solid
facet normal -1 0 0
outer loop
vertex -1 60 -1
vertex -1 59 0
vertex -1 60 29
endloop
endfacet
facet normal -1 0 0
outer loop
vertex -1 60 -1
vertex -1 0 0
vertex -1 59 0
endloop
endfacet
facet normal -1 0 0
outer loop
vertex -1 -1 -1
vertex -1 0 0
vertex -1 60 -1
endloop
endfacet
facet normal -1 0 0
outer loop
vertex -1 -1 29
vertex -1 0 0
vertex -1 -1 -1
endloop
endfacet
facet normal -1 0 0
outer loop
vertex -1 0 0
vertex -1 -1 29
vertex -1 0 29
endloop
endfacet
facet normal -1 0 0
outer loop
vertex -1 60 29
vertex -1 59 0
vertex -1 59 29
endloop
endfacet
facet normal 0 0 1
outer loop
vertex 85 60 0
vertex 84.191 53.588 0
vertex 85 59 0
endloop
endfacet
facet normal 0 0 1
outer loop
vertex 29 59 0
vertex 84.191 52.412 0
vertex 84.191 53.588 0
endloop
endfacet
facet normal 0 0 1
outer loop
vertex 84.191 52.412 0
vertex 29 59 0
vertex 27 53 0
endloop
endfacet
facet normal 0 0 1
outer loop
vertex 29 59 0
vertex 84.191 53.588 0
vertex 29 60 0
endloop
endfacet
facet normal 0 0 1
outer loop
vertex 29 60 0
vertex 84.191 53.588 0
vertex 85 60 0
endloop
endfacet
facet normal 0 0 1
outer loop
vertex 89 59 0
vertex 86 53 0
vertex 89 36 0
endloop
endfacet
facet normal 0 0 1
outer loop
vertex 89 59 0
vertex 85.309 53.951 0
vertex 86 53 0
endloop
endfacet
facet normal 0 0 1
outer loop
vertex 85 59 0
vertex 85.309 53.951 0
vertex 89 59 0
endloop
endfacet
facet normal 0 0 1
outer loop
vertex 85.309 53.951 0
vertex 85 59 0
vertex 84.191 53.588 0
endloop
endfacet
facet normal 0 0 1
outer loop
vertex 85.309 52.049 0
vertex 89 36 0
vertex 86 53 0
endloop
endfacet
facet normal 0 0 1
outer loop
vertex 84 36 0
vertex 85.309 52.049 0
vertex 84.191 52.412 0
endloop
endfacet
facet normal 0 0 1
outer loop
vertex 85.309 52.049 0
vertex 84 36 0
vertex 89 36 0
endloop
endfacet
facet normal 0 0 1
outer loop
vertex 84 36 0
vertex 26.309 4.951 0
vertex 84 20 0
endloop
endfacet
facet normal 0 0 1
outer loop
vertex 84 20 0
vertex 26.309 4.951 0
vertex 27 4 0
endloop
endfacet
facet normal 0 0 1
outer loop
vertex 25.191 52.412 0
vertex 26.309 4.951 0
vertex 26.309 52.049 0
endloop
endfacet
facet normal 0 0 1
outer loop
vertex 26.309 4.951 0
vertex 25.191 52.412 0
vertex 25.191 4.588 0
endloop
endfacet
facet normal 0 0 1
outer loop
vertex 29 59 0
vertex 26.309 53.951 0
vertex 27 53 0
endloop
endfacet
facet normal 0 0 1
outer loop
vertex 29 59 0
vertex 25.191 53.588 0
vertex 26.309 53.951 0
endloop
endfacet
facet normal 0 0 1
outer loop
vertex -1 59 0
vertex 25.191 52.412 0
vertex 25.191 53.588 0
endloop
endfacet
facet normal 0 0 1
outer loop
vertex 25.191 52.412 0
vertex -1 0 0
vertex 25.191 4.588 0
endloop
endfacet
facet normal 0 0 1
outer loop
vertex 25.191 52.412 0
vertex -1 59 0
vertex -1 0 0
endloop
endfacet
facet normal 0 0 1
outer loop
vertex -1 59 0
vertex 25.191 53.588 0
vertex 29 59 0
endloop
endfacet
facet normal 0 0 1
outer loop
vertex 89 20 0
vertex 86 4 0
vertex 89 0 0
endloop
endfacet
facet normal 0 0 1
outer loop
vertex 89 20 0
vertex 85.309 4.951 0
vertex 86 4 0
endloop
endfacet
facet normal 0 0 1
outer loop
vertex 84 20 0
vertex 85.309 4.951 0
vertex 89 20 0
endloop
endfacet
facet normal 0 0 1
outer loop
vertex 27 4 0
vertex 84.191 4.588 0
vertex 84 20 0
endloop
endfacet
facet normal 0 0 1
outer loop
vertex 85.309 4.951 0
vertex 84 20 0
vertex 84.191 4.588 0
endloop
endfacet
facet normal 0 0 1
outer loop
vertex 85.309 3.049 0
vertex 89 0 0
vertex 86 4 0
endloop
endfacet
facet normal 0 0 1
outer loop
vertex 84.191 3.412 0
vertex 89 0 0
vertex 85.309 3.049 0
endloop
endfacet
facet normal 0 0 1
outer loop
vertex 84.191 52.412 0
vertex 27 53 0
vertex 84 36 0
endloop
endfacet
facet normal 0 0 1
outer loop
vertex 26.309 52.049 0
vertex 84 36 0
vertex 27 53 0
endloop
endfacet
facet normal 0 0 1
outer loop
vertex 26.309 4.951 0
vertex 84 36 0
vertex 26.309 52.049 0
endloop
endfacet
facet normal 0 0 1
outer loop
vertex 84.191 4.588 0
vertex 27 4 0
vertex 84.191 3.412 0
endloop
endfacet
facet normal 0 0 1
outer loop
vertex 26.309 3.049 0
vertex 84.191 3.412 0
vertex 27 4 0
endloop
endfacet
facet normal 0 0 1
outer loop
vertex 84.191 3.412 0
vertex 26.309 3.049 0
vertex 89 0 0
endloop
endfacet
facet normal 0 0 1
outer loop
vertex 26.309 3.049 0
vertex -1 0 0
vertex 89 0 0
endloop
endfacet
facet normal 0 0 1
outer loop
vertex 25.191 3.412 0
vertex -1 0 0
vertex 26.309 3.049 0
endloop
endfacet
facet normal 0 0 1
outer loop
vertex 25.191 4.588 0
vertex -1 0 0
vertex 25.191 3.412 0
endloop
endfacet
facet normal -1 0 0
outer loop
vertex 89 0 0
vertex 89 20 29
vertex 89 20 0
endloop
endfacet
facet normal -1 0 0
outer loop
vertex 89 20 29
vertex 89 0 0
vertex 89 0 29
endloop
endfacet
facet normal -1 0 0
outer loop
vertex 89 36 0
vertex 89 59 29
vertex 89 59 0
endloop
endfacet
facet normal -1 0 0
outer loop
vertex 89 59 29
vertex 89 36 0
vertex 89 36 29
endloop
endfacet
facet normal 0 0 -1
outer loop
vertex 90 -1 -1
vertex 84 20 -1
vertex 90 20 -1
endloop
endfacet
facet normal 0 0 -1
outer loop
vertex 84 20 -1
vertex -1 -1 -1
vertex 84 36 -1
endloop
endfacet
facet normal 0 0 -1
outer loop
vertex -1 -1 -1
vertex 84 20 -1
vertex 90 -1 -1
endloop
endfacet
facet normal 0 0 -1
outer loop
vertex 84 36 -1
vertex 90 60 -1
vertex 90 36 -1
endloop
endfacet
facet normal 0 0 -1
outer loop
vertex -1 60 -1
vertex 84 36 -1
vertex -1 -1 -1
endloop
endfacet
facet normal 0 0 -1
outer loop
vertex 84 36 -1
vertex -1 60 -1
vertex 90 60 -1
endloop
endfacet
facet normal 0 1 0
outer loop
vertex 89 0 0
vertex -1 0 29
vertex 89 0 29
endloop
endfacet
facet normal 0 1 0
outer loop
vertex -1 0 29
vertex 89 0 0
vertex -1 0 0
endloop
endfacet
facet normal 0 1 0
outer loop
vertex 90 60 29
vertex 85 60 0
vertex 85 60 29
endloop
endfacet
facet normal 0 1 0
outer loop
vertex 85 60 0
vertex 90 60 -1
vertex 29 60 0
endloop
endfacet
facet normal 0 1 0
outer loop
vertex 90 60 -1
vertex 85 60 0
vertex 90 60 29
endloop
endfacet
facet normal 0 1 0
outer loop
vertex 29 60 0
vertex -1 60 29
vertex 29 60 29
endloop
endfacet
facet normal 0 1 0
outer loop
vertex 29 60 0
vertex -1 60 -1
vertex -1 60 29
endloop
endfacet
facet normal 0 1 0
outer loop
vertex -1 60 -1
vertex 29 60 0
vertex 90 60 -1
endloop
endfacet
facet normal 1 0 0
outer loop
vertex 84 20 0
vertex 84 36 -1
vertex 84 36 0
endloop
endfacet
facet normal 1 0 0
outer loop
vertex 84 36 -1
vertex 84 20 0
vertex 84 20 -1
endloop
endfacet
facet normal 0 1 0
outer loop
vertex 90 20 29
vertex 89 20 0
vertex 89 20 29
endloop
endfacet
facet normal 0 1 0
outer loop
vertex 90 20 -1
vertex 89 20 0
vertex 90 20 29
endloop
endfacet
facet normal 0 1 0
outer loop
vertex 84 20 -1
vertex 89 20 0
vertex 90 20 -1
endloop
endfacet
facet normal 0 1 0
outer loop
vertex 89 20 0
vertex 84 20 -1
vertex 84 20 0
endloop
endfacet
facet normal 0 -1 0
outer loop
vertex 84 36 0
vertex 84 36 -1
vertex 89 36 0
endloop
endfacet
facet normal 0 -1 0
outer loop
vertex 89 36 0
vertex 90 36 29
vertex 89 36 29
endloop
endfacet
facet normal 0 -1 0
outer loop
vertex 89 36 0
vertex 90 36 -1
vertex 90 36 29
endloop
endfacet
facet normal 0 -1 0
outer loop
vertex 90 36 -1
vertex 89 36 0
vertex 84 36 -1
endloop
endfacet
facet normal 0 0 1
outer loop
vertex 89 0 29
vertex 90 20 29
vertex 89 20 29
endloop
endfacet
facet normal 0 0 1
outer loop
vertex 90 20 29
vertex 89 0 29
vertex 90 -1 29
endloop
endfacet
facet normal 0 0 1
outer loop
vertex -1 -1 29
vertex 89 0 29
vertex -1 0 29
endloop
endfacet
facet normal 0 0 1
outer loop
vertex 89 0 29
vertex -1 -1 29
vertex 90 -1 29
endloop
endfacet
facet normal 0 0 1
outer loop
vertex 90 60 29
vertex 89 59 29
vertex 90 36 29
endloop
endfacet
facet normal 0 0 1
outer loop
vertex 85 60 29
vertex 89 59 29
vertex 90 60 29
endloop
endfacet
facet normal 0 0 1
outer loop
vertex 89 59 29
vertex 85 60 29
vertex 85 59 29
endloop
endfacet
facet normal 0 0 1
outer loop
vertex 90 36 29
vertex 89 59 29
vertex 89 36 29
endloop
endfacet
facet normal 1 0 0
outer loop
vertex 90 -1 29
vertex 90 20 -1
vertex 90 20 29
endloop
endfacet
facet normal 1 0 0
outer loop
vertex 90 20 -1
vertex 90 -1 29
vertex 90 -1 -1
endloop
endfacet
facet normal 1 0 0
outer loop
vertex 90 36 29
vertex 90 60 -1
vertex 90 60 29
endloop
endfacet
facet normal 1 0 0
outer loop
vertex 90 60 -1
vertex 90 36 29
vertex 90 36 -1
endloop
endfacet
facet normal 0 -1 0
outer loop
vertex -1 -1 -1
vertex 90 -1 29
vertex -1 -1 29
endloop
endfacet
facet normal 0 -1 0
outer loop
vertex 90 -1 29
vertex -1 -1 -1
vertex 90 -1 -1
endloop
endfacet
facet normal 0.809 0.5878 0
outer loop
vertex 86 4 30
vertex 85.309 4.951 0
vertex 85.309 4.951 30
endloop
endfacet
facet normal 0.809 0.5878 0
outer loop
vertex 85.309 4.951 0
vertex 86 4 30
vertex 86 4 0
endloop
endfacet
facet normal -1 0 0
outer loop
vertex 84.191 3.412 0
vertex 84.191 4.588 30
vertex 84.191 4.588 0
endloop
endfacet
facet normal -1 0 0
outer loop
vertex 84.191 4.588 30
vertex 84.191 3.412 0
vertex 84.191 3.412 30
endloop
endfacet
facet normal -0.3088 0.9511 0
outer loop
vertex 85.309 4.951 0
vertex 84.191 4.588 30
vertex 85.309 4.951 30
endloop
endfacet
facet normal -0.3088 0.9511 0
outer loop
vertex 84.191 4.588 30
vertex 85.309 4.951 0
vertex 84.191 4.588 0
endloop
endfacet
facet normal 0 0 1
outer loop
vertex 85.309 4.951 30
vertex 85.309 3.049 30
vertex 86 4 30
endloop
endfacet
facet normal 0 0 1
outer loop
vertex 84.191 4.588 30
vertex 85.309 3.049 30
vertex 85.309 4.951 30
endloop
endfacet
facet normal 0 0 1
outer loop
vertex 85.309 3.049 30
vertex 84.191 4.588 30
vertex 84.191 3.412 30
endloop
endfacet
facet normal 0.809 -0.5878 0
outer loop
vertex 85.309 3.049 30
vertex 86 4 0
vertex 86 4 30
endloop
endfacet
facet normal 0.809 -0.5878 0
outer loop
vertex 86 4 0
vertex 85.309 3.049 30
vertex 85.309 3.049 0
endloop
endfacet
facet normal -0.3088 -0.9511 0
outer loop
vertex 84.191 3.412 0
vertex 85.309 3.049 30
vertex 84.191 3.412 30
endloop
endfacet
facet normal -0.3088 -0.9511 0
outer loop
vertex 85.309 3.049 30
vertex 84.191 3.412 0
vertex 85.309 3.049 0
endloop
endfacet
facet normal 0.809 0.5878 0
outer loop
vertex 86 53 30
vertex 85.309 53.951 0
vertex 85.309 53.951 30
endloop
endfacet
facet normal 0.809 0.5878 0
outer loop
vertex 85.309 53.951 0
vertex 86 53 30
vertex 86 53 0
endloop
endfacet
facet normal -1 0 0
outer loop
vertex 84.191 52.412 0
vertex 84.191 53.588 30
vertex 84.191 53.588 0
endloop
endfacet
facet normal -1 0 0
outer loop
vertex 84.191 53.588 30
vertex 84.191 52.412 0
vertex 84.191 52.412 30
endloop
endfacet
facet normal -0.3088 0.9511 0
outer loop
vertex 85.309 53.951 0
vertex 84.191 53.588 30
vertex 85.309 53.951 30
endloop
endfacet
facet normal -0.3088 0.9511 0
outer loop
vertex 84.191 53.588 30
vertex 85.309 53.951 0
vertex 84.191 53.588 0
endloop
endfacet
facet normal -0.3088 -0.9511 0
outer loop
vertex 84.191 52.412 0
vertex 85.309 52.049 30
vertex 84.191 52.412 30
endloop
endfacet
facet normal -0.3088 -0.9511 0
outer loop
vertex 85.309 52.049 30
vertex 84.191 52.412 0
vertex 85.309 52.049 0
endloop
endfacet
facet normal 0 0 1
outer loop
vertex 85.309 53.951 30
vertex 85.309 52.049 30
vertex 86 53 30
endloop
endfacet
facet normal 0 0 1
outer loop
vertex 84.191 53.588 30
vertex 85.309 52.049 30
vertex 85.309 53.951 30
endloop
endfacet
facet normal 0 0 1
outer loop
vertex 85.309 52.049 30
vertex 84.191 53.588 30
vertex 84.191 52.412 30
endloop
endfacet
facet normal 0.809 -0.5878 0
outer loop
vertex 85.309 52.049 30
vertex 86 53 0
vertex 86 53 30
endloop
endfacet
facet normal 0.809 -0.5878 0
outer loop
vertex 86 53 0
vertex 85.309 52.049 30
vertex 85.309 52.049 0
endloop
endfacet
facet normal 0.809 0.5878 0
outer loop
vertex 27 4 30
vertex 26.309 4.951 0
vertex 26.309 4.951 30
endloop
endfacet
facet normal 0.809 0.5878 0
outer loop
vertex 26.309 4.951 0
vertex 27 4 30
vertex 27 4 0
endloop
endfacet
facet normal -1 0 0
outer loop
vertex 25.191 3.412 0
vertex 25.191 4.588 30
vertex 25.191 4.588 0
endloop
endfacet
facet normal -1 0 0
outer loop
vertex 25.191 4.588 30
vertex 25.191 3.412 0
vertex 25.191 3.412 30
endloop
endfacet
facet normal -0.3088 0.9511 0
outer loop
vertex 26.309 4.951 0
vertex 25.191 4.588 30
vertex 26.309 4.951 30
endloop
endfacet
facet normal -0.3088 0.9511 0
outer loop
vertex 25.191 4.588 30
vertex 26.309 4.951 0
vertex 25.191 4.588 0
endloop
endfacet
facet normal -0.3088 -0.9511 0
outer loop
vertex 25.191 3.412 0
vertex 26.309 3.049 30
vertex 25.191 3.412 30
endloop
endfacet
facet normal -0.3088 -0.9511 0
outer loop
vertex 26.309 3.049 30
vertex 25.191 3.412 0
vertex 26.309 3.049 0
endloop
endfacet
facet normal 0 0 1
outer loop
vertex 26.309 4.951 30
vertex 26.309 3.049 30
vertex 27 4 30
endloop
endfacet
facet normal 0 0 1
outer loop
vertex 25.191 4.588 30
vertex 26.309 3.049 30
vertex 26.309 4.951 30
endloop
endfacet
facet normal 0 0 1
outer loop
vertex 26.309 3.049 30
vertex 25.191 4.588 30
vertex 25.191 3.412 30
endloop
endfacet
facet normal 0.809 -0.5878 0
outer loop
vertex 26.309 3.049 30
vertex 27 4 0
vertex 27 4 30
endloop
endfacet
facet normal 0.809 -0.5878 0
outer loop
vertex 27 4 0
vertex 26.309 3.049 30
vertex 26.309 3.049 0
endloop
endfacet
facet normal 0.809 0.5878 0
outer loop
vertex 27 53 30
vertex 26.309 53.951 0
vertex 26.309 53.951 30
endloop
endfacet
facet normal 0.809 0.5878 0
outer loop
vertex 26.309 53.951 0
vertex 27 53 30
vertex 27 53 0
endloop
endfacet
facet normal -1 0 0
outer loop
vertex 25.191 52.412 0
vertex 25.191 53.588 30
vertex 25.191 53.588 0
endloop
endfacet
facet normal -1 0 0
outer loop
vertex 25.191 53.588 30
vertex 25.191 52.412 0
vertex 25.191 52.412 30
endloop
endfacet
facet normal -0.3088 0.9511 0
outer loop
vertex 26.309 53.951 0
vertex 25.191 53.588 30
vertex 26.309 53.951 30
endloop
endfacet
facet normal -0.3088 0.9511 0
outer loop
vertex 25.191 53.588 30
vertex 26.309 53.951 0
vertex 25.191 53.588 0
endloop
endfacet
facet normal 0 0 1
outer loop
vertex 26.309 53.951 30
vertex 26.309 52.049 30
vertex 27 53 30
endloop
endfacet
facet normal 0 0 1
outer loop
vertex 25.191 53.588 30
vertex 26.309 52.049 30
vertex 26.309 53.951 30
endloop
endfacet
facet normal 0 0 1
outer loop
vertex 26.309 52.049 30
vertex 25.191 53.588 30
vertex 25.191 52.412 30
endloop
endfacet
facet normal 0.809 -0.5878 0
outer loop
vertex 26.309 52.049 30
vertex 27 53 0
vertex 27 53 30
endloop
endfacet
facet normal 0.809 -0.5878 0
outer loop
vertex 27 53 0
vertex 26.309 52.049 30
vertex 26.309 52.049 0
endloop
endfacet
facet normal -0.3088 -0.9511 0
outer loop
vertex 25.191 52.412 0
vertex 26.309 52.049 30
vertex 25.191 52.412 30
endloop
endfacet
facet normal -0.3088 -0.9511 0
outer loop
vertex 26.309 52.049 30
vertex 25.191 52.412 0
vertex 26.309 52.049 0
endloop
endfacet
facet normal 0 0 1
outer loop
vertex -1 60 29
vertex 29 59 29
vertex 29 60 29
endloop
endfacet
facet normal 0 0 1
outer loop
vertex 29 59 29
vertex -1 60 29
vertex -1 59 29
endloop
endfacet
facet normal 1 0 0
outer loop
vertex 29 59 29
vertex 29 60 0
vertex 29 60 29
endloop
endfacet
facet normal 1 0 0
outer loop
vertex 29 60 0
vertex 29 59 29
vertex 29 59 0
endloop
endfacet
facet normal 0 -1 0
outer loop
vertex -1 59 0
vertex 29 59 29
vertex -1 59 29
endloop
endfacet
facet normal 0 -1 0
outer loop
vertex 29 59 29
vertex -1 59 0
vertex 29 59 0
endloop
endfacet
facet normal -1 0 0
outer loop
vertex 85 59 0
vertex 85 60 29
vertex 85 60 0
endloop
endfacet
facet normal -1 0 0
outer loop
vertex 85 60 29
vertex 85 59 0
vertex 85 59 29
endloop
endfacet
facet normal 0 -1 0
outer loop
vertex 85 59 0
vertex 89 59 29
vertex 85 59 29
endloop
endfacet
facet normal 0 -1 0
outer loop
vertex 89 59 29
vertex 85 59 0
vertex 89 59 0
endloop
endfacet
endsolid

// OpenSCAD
board_real_length=87;
board_real_width=56;
box_length=((board_real_length+3));
box_width=59;
small_distance_between_holes=49;
box_height=30;
thickness=1;

difference() {
    translate([-thickness, 0, -thickness])cube([box_length, box_width+thickness, thickness]);
    translate([84, 20, -5])cube([30, 16, 10]);
}

// distance of 4 from right-most edge
// two sticks, close to closed side
translate([box_length - 5, 4, 0]) cylinder(30, 2/2, 2/2);
translate([box_length - 5, 53, 0]) cylinder(30, 2/2, 2/2);

// distance of 62 from right-most-edge
// two sticks, close to open side
translate([box_length - 64, 4, 0]) cylinder(30, 2/2, 2/2);
translate([box_length - 64, 53, 0]) cylinder(30, 2/2, 2/2);

// side support
translate([-thickness, -thickness, -thickness])cube([box_length, thickness, box_height]);
translate([-thickness, box_width, -thickness])cube([30, thickness, box_height]);
translate([85, box_width, -thickness])cube([5, thickness, box_height]);

difference() {
    translate([89, -thickness, -thickness])cube([thickness, box_width+(2*thickness), box_height]);
    translate([88, 20, -10])cube([thickness+2, 16, 50]);
}
